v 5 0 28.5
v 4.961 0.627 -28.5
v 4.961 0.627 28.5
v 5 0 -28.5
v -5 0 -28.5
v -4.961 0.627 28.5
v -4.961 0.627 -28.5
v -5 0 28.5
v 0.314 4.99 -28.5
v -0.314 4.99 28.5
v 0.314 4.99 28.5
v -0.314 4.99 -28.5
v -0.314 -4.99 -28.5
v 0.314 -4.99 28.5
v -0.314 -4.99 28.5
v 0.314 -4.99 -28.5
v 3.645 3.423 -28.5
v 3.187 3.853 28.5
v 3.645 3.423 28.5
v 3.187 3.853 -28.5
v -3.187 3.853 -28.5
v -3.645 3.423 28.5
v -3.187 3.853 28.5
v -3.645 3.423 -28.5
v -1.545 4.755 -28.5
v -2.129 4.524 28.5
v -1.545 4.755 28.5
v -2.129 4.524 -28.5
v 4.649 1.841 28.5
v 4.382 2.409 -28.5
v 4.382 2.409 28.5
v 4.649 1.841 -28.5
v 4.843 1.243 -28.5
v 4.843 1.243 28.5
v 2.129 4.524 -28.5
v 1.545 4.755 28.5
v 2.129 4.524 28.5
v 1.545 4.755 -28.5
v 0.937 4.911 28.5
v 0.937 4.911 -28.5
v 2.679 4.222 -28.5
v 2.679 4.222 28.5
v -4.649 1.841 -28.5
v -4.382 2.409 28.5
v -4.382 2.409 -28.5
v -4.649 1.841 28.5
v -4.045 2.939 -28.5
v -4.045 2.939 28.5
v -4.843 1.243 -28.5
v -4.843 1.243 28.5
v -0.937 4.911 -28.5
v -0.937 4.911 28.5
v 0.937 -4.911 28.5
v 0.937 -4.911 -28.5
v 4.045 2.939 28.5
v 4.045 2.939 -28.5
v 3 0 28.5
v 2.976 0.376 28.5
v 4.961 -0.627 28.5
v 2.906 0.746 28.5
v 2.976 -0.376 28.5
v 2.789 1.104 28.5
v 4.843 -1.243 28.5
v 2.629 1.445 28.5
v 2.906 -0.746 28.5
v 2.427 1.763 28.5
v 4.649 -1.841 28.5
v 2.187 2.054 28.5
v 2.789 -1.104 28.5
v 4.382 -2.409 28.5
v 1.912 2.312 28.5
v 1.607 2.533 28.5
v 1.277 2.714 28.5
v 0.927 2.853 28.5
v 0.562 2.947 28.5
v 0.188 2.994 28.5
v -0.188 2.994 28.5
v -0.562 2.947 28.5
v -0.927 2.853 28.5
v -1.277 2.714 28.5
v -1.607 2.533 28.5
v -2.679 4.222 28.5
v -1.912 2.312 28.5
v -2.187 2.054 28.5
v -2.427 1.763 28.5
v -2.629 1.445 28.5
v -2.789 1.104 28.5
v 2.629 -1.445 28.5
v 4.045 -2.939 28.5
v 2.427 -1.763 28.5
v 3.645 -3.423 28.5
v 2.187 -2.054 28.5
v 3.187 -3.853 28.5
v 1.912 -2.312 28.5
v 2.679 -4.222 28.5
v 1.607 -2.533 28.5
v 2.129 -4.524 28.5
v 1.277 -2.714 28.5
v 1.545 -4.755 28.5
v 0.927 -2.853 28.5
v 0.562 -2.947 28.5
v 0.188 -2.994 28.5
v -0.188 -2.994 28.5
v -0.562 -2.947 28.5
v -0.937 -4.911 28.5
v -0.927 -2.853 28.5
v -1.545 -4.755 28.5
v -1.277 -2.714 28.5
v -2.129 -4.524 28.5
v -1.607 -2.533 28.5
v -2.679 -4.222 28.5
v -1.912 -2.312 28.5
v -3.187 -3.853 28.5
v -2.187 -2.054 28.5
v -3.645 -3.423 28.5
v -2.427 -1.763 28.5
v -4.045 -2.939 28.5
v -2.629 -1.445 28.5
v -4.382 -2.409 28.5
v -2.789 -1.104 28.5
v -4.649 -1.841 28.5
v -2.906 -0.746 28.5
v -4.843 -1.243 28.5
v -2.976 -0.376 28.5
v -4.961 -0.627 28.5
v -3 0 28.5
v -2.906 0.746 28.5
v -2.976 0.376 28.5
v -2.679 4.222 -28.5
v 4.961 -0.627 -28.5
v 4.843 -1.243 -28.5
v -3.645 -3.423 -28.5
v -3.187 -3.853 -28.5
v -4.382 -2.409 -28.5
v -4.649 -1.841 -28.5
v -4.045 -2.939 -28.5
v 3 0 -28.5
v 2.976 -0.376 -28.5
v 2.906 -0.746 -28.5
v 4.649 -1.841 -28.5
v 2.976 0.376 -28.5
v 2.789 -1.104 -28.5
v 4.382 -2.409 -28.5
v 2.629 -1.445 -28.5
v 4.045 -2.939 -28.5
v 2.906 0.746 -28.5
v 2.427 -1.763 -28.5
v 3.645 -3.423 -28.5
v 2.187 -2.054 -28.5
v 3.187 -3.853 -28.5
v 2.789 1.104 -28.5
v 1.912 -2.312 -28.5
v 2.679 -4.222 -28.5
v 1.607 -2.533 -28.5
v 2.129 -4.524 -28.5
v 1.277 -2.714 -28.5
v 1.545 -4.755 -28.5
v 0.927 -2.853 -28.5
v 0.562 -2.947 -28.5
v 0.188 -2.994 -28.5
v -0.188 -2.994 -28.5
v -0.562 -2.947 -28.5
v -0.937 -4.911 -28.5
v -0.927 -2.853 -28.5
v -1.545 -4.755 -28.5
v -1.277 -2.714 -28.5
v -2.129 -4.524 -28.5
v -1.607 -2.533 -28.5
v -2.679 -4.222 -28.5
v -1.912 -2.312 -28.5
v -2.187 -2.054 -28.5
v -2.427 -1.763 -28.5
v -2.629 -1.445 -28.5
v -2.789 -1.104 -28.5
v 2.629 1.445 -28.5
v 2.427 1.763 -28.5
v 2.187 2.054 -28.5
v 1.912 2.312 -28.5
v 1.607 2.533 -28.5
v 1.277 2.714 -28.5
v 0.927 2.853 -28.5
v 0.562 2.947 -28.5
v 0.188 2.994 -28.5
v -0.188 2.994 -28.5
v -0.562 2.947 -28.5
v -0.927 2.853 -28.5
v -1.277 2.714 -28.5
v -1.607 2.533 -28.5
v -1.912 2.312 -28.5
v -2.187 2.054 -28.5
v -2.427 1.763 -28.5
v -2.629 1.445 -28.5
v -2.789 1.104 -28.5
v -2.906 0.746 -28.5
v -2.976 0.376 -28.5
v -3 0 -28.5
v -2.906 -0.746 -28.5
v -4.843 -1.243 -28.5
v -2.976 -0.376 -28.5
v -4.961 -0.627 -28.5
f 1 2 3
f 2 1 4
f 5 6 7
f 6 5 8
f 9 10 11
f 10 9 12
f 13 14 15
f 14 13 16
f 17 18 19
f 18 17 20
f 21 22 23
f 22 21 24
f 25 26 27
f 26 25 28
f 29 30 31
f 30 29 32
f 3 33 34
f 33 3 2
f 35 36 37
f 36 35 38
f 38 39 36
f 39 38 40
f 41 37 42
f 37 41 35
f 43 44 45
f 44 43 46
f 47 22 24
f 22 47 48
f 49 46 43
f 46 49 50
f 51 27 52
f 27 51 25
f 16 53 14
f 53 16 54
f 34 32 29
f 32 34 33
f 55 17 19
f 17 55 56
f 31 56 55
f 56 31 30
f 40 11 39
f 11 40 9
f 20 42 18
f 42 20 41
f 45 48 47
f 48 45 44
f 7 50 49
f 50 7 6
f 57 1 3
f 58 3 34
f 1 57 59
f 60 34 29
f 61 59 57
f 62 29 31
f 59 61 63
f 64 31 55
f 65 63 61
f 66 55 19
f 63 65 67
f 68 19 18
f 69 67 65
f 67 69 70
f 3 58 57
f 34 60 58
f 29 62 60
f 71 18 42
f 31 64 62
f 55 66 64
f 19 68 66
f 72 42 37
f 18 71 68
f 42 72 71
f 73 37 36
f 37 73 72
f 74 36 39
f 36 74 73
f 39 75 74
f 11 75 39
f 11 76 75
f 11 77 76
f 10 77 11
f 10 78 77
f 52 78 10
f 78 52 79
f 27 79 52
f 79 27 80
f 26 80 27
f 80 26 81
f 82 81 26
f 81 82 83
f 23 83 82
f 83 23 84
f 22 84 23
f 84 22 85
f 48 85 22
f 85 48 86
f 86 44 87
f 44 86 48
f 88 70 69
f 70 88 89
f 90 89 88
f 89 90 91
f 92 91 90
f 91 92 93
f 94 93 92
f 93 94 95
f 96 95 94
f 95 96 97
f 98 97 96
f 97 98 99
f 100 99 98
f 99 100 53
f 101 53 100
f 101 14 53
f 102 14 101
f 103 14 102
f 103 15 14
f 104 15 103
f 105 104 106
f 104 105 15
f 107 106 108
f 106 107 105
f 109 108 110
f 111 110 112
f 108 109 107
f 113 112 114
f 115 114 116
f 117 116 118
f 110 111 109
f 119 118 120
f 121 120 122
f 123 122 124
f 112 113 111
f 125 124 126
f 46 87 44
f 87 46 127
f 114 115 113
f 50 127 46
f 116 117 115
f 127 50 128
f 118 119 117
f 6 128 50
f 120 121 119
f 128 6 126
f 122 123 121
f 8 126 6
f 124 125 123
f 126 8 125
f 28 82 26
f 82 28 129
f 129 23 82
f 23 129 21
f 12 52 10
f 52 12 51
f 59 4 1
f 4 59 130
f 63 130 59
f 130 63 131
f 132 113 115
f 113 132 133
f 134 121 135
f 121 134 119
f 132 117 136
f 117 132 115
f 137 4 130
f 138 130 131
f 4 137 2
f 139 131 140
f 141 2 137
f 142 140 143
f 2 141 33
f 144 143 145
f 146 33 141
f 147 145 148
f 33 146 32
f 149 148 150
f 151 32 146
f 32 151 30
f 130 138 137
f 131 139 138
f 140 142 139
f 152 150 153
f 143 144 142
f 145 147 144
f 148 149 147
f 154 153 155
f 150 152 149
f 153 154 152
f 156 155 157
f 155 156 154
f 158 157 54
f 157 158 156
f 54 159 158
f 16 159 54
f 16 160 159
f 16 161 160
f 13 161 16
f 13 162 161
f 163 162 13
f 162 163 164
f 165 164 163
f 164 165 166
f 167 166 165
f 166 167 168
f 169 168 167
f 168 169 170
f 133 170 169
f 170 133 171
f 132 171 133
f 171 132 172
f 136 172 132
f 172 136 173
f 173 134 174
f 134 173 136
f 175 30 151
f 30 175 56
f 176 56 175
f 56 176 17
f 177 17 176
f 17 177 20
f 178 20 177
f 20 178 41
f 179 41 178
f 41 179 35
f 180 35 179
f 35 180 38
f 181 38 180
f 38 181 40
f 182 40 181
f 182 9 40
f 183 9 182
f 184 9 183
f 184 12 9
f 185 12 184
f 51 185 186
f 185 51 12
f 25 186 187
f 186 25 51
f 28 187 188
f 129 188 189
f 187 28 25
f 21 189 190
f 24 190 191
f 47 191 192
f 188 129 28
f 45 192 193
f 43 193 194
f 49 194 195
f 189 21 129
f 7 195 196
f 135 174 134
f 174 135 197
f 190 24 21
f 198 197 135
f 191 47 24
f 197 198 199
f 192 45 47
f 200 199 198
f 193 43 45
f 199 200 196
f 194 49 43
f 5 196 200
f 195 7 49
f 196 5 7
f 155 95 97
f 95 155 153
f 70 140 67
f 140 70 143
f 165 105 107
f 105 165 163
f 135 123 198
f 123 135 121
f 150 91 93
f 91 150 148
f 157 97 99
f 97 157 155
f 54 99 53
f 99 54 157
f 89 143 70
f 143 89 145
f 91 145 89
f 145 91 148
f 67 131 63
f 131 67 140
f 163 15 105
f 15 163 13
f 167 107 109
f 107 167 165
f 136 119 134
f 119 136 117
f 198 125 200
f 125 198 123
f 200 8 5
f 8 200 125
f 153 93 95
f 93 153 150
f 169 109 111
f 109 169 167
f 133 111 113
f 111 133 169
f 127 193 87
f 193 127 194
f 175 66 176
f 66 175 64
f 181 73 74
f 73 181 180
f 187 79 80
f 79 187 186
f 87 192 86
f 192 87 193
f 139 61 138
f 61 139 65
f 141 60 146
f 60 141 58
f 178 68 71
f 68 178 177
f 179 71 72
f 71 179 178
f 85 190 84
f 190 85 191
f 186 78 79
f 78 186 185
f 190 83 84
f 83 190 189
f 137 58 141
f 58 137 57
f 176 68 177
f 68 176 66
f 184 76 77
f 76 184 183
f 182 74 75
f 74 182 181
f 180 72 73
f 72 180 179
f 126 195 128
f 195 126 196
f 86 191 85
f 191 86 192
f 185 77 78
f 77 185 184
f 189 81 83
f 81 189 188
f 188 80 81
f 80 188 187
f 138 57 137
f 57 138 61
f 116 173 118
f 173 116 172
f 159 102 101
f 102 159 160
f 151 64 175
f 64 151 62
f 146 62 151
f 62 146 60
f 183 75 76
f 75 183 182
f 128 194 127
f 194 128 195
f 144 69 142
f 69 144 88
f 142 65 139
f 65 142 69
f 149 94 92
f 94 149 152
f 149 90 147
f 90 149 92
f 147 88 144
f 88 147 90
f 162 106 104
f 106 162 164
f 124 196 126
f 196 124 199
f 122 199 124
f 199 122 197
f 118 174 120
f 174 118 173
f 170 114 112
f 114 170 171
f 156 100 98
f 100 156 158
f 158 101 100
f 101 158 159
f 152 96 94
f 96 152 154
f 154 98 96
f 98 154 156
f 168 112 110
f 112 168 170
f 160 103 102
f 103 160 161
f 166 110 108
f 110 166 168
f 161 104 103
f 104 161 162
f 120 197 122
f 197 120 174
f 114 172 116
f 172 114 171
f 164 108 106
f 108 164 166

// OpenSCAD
$fn = 50;


difference() {
	union() {
		translate(v = [0, 0, -28.5000000000]) {
			cylinder(h = 57, r = 5.0000000000);
		}
	}
	union() {
		translate(v = [0, 0, -100.0000000000]) {
			cylinder(h = 200, r = 3);
		}
	}
}
